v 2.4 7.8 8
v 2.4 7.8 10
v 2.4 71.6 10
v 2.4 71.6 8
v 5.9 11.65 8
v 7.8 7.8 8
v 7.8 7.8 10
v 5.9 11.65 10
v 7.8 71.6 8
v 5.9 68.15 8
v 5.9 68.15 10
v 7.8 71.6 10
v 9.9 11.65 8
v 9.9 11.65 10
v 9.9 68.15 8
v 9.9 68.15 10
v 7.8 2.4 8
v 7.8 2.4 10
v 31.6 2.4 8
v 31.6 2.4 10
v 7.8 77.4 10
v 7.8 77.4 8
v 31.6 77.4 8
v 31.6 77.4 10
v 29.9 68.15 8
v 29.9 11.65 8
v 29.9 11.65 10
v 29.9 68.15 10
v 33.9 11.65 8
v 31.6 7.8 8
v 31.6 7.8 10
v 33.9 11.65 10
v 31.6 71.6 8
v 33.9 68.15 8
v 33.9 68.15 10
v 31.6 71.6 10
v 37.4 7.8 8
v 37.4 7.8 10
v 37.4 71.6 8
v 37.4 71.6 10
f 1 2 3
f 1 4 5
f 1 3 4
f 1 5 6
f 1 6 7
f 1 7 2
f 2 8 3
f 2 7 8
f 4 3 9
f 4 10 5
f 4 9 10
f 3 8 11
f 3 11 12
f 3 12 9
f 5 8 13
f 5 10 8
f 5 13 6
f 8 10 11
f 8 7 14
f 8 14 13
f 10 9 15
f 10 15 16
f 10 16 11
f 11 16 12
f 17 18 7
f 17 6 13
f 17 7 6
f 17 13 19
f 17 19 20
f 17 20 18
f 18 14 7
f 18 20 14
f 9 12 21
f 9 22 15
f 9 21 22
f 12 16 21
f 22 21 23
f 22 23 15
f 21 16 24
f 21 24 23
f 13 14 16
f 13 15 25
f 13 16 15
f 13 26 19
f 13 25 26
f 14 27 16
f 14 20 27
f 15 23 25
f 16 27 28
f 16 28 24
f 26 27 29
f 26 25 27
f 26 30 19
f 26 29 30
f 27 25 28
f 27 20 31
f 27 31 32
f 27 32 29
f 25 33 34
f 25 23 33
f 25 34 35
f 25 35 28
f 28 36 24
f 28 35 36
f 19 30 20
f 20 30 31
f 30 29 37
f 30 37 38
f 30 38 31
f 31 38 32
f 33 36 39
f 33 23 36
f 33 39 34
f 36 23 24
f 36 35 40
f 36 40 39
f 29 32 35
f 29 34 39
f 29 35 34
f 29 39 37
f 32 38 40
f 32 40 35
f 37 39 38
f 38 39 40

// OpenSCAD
// Dilder Middle Plate — standalone board tray for ESP32-S3
//
// This is the middle plate extracted from esp32s3-enclosure.scad.
// It drops into the base shell and rests on the lower shelf at z=8.
// The plate holds the Olimex ESP32-S3-DevKit-Lipo board with header
// pin clearance slots on both long edges.
//
// Export:
//   openscad -o middle.3mf middle-plate.scad
//
// To override parameters from the command line:
//   openscad -D 'board_wid=30' -o middle.3mf middle-plate.scad

$fn = 48;

// ---- Board (Olimex ESP32-S3-DevKit-Lipo) ----
board_len      = 56;
board_wid      = 28;
board_thk      = 1.6;
wroom_h        = 3.2;
antenna_wid    = 18;
antenna_proj   = 6;
header_gap     = 22;       // distance between the two header rows
header_slot_len = 56.5;    // slot length — board length + 0.5mm clearance
header_slot_wid = 4;       // slot width — wider than hdr_strip (3mm) for easy fit

// ---- Waveshare 2.13" display ----
disp_len       = 65;
disp_wid       = 30;

// ---- 1000 mAh battery ----
bat_len        = 52;
bat_wid        = 35;

// ---- Enclosure geometry ----
wall_thk       = 2;
plate_thk      = 2;
pillar         = 5;
slop           = 0.4;
bat_chamber_h  = 6;

screw_clr      = 3.2;

// ---- Z layout (only what we need) ----
z_base_top     = plate_thk;                       // 2
z_mid_bot      = z_base_top + bat_chamber_h;      // 8

// ---- XY layout ----
inner_wid      = max(board_wid, disp_wid, bat_wid) + 2 * slop;
inner_len      = max(board_len + antenna_proj, disp_len + 2 * pillar, bat_len) + 2 * slop;
outer_wid      = inner_wid + 2 * wall_thk;
outer_len      = inner_len + 2 * wall_thk;

pillar_xy = [
    [wall_thk,                             wall_thk                            ],
    [outer_wid - wall_thk - pillar,        wall_thk                            ],
    [wall_thk,                             outer_len - wall_thk - pillar       ],
    [outer_wid - wall_thk - pillar,        outer_len - wall_thk - pillar       ],
];

board_x        = (outer_wid - board_wid) / 2;
board_y        = (outer_len - board_len - antenna_proj) / 2;


// ============== MIDDLE PLATE ==============

module middle_plate() {
    plate_w = inner_wid - 2 * slop;
    plate_l = inner_len - 2 * slop;
    plate_origin_x = wall_thk + slop;
    plate_origin_y = wall_thk + slop;
    hdr_strip = (board_wid - header_gap) / 2;
    header_slot_x_left  = board_x - plate_origin_x;
    header_slot_x_right = board_x + board_wid - header_slot_wid - plate_origin_x;
    // Center the slot along the plate length
    header_slot_y_start = (plate_l - header_slot_len) / 2;
    header_slot_y_len   = header_slot_len;

    translate([plate_origin_x, plate_origin_y, z_mid_bot])
    difference() {
        cube([plate_w, plate_l, plate_thk]);

        // Corner pillar clearance notches — overshoot plate edges by 1mm for clean booleans
        for (dx = [0, plate_w - pillar - slop])
            for (dy = [0, plate_l - pillar - slop]) {
                ox = (dx > 0) ? 1 : 0;   // overshoot +x on far-x corners
                oy = (dy > 0) ? 1 : 0;   // overshoot +y on far-y corners
                translate([dx - slop, dy - slop, -1])
                    cube([pillar + 2 * slop + ox, pillar + 2 * slop + oy, plate_thk + 2]);
            }

        // Left header pin slot
        translate([header_slot_x_left, header_slot_y_start, -1])
            cube([header_slot_wid, header_slot_y_len, plate_thk + 2]);

        // Right header pin slot
        translate([header_slot_x_right, header_slot_y_start, -1])
            cube([header_slot_wid, header_slot_y_len, plate_thk + 2]);

        // Screw clearance holes
        for (p = pillar_xy)
            translate([p[0] + pillar/2 - plate_origin_x, p[1] + pillar/2 - plate_origin_y, -1])
                cylinder(h = plate_thk + 2, d = screw_clr);
    }
}

middle_plate();
